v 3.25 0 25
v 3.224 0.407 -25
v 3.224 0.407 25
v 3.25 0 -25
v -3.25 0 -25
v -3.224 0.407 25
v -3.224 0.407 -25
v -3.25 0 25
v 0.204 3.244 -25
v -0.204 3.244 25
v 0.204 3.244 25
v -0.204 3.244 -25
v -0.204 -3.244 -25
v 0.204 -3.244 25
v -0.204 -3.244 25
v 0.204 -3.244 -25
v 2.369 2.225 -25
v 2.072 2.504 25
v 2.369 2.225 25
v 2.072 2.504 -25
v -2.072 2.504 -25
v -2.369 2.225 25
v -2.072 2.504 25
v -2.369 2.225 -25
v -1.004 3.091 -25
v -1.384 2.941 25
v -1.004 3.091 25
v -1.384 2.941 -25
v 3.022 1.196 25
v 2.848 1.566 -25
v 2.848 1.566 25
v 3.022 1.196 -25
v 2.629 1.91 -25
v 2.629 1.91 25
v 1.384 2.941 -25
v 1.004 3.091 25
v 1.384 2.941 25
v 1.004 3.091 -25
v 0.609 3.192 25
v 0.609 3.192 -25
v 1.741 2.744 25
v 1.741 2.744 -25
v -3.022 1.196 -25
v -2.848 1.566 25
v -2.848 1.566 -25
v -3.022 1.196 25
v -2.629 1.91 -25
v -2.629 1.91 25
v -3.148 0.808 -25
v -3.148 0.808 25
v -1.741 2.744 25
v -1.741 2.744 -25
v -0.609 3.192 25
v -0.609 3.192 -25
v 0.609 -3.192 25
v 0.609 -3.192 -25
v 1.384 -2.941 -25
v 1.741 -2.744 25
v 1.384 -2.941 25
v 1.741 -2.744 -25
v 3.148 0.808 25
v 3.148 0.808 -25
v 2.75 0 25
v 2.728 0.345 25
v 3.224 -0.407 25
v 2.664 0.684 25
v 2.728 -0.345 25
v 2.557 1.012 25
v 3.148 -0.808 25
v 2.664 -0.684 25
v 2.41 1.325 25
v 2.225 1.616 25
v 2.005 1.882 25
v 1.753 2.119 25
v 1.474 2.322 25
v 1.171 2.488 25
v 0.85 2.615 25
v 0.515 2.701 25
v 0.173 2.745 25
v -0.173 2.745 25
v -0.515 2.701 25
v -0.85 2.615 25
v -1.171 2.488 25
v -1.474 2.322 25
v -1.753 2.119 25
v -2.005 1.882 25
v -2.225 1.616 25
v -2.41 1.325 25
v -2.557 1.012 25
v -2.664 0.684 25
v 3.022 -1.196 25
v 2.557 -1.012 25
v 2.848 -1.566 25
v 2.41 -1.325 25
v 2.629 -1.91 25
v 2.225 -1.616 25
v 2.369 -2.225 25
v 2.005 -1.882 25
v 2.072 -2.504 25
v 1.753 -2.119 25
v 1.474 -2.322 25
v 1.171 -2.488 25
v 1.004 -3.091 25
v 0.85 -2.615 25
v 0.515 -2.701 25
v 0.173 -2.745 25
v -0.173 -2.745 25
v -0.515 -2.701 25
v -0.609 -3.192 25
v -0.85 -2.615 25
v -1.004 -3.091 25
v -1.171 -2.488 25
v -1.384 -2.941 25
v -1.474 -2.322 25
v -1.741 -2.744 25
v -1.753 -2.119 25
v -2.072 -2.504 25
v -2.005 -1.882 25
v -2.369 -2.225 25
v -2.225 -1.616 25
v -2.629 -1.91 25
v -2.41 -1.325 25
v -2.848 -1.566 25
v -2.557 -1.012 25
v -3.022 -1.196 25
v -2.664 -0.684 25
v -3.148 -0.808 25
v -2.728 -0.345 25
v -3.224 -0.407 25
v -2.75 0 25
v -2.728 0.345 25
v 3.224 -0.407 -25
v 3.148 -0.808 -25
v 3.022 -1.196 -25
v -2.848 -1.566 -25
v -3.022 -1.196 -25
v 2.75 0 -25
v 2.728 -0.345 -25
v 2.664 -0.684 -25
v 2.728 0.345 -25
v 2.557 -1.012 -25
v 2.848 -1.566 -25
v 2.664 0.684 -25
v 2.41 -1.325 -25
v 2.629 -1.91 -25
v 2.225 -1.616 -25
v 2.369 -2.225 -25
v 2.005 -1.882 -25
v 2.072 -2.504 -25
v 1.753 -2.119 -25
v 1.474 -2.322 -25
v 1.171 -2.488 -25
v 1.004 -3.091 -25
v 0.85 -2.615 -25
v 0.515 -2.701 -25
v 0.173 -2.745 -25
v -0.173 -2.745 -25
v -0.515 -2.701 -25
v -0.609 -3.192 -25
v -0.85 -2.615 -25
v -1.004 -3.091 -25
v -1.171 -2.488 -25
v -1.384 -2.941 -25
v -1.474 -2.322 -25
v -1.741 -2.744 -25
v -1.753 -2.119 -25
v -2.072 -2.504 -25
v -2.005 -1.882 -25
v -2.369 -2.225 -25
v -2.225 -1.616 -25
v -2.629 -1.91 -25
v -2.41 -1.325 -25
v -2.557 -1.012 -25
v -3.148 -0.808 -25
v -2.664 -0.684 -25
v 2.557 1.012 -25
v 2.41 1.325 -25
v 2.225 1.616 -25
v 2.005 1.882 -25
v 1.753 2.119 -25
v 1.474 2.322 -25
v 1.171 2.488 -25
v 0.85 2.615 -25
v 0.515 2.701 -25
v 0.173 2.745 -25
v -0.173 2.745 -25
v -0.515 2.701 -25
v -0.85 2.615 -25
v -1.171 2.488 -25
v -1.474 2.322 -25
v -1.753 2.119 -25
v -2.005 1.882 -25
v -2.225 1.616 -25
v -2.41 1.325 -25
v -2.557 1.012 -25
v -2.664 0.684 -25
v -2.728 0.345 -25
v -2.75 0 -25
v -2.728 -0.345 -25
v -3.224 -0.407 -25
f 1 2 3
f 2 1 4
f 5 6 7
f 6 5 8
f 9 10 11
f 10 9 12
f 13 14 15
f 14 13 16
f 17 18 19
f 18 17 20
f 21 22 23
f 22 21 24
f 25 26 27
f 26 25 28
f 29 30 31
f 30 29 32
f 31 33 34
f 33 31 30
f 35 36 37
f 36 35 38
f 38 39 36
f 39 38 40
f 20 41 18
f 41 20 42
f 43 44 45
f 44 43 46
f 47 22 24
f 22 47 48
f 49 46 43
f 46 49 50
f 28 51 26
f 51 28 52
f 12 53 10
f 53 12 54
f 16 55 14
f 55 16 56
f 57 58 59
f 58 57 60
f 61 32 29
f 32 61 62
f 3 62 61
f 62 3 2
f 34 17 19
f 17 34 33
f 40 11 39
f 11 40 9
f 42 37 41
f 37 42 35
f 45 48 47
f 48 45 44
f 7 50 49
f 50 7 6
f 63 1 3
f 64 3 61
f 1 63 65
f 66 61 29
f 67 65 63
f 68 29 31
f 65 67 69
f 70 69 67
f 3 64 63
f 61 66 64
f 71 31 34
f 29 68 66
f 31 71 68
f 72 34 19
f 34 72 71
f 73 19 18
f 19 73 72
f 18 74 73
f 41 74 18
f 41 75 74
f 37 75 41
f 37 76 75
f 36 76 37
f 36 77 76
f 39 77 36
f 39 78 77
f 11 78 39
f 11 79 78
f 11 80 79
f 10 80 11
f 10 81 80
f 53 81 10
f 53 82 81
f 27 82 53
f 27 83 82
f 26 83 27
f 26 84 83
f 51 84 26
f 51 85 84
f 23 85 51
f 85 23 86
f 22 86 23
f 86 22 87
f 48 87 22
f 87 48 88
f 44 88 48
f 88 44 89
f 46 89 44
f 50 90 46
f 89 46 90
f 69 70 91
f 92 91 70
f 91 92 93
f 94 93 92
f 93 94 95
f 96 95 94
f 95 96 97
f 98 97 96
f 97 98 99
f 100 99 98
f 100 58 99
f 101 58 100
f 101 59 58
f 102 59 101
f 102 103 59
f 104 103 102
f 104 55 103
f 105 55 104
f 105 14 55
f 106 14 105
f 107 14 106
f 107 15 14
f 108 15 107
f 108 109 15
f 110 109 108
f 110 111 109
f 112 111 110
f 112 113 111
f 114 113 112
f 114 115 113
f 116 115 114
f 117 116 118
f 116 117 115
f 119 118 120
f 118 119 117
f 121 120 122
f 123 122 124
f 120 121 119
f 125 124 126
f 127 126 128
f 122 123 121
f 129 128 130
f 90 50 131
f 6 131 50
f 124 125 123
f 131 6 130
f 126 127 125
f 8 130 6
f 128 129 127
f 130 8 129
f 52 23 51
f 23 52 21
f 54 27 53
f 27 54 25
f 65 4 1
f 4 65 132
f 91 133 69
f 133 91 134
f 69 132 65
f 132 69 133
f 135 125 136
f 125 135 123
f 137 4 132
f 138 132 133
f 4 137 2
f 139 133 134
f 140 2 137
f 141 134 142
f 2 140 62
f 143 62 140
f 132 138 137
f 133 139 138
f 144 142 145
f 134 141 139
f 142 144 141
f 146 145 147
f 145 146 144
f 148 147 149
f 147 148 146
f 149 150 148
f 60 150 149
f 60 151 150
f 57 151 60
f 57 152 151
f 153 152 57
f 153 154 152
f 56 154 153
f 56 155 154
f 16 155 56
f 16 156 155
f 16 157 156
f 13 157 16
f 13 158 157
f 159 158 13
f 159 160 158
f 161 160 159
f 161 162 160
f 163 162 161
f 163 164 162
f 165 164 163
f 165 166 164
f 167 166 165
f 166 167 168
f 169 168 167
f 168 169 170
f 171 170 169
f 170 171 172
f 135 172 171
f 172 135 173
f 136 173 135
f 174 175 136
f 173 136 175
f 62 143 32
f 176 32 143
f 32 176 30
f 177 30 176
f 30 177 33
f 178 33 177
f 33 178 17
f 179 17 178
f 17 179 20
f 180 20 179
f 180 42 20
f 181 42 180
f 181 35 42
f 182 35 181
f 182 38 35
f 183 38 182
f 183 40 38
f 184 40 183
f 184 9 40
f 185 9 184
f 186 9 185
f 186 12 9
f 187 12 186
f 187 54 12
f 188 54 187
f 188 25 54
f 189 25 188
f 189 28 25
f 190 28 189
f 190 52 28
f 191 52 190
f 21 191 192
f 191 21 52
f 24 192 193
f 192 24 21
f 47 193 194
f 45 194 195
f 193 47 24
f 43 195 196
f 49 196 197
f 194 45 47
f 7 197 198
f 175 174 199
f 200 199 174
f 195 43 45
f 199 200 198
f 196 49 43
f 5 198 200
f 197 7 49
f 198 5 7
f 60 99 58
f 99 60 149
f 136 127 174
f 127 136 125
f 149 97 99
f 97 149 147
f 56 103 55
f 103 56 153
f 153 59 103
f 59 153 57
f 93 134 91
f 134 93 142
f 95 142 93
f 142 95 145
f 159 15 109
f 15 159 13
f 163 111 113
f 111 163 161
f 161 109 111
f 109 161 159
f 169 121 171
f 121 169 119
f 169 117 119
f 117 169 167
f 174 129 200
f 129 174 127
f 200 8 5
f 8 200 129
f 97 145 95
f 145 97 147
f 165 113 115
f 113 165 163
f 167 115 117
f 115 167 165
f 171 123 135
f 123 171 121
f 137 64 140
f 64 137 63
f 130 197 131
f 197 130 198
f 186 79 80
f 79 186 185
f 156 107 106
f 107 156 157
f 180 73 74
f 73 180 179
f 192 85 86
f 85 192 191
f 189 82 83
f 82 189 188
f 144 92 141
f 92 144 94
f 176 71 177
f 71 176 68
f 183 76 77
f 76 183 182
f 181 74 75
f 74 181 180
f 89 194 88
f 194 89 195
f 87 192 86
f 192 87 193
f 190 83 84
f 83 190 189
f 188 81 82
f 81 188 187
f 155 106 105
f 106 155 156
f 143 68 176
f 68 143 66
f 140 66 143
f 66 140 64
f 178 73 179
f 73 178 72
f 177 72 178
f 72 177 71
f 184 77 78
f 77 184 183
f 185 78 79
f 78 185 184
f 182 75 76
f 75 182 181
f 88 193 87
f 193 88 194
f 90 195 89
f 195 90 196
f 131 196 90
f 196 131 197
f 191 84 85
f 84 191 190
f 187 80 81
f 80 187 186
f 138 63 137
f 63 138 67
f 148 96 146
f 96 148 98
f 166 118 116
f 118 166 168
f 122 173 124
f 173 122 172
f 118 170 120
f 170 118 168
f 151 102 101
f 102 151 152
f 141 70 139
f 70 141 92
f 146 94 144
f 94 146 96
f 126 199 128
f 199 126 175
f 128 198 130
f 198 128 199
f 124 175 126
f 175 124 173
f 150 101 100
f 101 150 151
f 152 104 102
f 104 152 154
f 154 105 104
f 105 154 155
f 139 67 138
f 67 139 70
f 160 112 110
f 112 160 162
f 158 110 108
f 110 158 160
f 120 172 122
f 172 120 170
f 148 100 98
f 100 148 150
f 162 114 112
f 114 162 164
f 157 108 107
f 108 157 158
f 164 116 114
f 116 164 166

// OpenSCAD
$fn = 50;


difference() {
	union() {
		translate(v = [0, 0, -25.0000000000]) {
			cylinder(h = 50, r = 3.2500000000);
		}
	}
	union() {
		translate(v = [0, 0, -100.0000000000]) {
			cylinder(h = 200, r = 2.7500000000);
		}
	}
}
